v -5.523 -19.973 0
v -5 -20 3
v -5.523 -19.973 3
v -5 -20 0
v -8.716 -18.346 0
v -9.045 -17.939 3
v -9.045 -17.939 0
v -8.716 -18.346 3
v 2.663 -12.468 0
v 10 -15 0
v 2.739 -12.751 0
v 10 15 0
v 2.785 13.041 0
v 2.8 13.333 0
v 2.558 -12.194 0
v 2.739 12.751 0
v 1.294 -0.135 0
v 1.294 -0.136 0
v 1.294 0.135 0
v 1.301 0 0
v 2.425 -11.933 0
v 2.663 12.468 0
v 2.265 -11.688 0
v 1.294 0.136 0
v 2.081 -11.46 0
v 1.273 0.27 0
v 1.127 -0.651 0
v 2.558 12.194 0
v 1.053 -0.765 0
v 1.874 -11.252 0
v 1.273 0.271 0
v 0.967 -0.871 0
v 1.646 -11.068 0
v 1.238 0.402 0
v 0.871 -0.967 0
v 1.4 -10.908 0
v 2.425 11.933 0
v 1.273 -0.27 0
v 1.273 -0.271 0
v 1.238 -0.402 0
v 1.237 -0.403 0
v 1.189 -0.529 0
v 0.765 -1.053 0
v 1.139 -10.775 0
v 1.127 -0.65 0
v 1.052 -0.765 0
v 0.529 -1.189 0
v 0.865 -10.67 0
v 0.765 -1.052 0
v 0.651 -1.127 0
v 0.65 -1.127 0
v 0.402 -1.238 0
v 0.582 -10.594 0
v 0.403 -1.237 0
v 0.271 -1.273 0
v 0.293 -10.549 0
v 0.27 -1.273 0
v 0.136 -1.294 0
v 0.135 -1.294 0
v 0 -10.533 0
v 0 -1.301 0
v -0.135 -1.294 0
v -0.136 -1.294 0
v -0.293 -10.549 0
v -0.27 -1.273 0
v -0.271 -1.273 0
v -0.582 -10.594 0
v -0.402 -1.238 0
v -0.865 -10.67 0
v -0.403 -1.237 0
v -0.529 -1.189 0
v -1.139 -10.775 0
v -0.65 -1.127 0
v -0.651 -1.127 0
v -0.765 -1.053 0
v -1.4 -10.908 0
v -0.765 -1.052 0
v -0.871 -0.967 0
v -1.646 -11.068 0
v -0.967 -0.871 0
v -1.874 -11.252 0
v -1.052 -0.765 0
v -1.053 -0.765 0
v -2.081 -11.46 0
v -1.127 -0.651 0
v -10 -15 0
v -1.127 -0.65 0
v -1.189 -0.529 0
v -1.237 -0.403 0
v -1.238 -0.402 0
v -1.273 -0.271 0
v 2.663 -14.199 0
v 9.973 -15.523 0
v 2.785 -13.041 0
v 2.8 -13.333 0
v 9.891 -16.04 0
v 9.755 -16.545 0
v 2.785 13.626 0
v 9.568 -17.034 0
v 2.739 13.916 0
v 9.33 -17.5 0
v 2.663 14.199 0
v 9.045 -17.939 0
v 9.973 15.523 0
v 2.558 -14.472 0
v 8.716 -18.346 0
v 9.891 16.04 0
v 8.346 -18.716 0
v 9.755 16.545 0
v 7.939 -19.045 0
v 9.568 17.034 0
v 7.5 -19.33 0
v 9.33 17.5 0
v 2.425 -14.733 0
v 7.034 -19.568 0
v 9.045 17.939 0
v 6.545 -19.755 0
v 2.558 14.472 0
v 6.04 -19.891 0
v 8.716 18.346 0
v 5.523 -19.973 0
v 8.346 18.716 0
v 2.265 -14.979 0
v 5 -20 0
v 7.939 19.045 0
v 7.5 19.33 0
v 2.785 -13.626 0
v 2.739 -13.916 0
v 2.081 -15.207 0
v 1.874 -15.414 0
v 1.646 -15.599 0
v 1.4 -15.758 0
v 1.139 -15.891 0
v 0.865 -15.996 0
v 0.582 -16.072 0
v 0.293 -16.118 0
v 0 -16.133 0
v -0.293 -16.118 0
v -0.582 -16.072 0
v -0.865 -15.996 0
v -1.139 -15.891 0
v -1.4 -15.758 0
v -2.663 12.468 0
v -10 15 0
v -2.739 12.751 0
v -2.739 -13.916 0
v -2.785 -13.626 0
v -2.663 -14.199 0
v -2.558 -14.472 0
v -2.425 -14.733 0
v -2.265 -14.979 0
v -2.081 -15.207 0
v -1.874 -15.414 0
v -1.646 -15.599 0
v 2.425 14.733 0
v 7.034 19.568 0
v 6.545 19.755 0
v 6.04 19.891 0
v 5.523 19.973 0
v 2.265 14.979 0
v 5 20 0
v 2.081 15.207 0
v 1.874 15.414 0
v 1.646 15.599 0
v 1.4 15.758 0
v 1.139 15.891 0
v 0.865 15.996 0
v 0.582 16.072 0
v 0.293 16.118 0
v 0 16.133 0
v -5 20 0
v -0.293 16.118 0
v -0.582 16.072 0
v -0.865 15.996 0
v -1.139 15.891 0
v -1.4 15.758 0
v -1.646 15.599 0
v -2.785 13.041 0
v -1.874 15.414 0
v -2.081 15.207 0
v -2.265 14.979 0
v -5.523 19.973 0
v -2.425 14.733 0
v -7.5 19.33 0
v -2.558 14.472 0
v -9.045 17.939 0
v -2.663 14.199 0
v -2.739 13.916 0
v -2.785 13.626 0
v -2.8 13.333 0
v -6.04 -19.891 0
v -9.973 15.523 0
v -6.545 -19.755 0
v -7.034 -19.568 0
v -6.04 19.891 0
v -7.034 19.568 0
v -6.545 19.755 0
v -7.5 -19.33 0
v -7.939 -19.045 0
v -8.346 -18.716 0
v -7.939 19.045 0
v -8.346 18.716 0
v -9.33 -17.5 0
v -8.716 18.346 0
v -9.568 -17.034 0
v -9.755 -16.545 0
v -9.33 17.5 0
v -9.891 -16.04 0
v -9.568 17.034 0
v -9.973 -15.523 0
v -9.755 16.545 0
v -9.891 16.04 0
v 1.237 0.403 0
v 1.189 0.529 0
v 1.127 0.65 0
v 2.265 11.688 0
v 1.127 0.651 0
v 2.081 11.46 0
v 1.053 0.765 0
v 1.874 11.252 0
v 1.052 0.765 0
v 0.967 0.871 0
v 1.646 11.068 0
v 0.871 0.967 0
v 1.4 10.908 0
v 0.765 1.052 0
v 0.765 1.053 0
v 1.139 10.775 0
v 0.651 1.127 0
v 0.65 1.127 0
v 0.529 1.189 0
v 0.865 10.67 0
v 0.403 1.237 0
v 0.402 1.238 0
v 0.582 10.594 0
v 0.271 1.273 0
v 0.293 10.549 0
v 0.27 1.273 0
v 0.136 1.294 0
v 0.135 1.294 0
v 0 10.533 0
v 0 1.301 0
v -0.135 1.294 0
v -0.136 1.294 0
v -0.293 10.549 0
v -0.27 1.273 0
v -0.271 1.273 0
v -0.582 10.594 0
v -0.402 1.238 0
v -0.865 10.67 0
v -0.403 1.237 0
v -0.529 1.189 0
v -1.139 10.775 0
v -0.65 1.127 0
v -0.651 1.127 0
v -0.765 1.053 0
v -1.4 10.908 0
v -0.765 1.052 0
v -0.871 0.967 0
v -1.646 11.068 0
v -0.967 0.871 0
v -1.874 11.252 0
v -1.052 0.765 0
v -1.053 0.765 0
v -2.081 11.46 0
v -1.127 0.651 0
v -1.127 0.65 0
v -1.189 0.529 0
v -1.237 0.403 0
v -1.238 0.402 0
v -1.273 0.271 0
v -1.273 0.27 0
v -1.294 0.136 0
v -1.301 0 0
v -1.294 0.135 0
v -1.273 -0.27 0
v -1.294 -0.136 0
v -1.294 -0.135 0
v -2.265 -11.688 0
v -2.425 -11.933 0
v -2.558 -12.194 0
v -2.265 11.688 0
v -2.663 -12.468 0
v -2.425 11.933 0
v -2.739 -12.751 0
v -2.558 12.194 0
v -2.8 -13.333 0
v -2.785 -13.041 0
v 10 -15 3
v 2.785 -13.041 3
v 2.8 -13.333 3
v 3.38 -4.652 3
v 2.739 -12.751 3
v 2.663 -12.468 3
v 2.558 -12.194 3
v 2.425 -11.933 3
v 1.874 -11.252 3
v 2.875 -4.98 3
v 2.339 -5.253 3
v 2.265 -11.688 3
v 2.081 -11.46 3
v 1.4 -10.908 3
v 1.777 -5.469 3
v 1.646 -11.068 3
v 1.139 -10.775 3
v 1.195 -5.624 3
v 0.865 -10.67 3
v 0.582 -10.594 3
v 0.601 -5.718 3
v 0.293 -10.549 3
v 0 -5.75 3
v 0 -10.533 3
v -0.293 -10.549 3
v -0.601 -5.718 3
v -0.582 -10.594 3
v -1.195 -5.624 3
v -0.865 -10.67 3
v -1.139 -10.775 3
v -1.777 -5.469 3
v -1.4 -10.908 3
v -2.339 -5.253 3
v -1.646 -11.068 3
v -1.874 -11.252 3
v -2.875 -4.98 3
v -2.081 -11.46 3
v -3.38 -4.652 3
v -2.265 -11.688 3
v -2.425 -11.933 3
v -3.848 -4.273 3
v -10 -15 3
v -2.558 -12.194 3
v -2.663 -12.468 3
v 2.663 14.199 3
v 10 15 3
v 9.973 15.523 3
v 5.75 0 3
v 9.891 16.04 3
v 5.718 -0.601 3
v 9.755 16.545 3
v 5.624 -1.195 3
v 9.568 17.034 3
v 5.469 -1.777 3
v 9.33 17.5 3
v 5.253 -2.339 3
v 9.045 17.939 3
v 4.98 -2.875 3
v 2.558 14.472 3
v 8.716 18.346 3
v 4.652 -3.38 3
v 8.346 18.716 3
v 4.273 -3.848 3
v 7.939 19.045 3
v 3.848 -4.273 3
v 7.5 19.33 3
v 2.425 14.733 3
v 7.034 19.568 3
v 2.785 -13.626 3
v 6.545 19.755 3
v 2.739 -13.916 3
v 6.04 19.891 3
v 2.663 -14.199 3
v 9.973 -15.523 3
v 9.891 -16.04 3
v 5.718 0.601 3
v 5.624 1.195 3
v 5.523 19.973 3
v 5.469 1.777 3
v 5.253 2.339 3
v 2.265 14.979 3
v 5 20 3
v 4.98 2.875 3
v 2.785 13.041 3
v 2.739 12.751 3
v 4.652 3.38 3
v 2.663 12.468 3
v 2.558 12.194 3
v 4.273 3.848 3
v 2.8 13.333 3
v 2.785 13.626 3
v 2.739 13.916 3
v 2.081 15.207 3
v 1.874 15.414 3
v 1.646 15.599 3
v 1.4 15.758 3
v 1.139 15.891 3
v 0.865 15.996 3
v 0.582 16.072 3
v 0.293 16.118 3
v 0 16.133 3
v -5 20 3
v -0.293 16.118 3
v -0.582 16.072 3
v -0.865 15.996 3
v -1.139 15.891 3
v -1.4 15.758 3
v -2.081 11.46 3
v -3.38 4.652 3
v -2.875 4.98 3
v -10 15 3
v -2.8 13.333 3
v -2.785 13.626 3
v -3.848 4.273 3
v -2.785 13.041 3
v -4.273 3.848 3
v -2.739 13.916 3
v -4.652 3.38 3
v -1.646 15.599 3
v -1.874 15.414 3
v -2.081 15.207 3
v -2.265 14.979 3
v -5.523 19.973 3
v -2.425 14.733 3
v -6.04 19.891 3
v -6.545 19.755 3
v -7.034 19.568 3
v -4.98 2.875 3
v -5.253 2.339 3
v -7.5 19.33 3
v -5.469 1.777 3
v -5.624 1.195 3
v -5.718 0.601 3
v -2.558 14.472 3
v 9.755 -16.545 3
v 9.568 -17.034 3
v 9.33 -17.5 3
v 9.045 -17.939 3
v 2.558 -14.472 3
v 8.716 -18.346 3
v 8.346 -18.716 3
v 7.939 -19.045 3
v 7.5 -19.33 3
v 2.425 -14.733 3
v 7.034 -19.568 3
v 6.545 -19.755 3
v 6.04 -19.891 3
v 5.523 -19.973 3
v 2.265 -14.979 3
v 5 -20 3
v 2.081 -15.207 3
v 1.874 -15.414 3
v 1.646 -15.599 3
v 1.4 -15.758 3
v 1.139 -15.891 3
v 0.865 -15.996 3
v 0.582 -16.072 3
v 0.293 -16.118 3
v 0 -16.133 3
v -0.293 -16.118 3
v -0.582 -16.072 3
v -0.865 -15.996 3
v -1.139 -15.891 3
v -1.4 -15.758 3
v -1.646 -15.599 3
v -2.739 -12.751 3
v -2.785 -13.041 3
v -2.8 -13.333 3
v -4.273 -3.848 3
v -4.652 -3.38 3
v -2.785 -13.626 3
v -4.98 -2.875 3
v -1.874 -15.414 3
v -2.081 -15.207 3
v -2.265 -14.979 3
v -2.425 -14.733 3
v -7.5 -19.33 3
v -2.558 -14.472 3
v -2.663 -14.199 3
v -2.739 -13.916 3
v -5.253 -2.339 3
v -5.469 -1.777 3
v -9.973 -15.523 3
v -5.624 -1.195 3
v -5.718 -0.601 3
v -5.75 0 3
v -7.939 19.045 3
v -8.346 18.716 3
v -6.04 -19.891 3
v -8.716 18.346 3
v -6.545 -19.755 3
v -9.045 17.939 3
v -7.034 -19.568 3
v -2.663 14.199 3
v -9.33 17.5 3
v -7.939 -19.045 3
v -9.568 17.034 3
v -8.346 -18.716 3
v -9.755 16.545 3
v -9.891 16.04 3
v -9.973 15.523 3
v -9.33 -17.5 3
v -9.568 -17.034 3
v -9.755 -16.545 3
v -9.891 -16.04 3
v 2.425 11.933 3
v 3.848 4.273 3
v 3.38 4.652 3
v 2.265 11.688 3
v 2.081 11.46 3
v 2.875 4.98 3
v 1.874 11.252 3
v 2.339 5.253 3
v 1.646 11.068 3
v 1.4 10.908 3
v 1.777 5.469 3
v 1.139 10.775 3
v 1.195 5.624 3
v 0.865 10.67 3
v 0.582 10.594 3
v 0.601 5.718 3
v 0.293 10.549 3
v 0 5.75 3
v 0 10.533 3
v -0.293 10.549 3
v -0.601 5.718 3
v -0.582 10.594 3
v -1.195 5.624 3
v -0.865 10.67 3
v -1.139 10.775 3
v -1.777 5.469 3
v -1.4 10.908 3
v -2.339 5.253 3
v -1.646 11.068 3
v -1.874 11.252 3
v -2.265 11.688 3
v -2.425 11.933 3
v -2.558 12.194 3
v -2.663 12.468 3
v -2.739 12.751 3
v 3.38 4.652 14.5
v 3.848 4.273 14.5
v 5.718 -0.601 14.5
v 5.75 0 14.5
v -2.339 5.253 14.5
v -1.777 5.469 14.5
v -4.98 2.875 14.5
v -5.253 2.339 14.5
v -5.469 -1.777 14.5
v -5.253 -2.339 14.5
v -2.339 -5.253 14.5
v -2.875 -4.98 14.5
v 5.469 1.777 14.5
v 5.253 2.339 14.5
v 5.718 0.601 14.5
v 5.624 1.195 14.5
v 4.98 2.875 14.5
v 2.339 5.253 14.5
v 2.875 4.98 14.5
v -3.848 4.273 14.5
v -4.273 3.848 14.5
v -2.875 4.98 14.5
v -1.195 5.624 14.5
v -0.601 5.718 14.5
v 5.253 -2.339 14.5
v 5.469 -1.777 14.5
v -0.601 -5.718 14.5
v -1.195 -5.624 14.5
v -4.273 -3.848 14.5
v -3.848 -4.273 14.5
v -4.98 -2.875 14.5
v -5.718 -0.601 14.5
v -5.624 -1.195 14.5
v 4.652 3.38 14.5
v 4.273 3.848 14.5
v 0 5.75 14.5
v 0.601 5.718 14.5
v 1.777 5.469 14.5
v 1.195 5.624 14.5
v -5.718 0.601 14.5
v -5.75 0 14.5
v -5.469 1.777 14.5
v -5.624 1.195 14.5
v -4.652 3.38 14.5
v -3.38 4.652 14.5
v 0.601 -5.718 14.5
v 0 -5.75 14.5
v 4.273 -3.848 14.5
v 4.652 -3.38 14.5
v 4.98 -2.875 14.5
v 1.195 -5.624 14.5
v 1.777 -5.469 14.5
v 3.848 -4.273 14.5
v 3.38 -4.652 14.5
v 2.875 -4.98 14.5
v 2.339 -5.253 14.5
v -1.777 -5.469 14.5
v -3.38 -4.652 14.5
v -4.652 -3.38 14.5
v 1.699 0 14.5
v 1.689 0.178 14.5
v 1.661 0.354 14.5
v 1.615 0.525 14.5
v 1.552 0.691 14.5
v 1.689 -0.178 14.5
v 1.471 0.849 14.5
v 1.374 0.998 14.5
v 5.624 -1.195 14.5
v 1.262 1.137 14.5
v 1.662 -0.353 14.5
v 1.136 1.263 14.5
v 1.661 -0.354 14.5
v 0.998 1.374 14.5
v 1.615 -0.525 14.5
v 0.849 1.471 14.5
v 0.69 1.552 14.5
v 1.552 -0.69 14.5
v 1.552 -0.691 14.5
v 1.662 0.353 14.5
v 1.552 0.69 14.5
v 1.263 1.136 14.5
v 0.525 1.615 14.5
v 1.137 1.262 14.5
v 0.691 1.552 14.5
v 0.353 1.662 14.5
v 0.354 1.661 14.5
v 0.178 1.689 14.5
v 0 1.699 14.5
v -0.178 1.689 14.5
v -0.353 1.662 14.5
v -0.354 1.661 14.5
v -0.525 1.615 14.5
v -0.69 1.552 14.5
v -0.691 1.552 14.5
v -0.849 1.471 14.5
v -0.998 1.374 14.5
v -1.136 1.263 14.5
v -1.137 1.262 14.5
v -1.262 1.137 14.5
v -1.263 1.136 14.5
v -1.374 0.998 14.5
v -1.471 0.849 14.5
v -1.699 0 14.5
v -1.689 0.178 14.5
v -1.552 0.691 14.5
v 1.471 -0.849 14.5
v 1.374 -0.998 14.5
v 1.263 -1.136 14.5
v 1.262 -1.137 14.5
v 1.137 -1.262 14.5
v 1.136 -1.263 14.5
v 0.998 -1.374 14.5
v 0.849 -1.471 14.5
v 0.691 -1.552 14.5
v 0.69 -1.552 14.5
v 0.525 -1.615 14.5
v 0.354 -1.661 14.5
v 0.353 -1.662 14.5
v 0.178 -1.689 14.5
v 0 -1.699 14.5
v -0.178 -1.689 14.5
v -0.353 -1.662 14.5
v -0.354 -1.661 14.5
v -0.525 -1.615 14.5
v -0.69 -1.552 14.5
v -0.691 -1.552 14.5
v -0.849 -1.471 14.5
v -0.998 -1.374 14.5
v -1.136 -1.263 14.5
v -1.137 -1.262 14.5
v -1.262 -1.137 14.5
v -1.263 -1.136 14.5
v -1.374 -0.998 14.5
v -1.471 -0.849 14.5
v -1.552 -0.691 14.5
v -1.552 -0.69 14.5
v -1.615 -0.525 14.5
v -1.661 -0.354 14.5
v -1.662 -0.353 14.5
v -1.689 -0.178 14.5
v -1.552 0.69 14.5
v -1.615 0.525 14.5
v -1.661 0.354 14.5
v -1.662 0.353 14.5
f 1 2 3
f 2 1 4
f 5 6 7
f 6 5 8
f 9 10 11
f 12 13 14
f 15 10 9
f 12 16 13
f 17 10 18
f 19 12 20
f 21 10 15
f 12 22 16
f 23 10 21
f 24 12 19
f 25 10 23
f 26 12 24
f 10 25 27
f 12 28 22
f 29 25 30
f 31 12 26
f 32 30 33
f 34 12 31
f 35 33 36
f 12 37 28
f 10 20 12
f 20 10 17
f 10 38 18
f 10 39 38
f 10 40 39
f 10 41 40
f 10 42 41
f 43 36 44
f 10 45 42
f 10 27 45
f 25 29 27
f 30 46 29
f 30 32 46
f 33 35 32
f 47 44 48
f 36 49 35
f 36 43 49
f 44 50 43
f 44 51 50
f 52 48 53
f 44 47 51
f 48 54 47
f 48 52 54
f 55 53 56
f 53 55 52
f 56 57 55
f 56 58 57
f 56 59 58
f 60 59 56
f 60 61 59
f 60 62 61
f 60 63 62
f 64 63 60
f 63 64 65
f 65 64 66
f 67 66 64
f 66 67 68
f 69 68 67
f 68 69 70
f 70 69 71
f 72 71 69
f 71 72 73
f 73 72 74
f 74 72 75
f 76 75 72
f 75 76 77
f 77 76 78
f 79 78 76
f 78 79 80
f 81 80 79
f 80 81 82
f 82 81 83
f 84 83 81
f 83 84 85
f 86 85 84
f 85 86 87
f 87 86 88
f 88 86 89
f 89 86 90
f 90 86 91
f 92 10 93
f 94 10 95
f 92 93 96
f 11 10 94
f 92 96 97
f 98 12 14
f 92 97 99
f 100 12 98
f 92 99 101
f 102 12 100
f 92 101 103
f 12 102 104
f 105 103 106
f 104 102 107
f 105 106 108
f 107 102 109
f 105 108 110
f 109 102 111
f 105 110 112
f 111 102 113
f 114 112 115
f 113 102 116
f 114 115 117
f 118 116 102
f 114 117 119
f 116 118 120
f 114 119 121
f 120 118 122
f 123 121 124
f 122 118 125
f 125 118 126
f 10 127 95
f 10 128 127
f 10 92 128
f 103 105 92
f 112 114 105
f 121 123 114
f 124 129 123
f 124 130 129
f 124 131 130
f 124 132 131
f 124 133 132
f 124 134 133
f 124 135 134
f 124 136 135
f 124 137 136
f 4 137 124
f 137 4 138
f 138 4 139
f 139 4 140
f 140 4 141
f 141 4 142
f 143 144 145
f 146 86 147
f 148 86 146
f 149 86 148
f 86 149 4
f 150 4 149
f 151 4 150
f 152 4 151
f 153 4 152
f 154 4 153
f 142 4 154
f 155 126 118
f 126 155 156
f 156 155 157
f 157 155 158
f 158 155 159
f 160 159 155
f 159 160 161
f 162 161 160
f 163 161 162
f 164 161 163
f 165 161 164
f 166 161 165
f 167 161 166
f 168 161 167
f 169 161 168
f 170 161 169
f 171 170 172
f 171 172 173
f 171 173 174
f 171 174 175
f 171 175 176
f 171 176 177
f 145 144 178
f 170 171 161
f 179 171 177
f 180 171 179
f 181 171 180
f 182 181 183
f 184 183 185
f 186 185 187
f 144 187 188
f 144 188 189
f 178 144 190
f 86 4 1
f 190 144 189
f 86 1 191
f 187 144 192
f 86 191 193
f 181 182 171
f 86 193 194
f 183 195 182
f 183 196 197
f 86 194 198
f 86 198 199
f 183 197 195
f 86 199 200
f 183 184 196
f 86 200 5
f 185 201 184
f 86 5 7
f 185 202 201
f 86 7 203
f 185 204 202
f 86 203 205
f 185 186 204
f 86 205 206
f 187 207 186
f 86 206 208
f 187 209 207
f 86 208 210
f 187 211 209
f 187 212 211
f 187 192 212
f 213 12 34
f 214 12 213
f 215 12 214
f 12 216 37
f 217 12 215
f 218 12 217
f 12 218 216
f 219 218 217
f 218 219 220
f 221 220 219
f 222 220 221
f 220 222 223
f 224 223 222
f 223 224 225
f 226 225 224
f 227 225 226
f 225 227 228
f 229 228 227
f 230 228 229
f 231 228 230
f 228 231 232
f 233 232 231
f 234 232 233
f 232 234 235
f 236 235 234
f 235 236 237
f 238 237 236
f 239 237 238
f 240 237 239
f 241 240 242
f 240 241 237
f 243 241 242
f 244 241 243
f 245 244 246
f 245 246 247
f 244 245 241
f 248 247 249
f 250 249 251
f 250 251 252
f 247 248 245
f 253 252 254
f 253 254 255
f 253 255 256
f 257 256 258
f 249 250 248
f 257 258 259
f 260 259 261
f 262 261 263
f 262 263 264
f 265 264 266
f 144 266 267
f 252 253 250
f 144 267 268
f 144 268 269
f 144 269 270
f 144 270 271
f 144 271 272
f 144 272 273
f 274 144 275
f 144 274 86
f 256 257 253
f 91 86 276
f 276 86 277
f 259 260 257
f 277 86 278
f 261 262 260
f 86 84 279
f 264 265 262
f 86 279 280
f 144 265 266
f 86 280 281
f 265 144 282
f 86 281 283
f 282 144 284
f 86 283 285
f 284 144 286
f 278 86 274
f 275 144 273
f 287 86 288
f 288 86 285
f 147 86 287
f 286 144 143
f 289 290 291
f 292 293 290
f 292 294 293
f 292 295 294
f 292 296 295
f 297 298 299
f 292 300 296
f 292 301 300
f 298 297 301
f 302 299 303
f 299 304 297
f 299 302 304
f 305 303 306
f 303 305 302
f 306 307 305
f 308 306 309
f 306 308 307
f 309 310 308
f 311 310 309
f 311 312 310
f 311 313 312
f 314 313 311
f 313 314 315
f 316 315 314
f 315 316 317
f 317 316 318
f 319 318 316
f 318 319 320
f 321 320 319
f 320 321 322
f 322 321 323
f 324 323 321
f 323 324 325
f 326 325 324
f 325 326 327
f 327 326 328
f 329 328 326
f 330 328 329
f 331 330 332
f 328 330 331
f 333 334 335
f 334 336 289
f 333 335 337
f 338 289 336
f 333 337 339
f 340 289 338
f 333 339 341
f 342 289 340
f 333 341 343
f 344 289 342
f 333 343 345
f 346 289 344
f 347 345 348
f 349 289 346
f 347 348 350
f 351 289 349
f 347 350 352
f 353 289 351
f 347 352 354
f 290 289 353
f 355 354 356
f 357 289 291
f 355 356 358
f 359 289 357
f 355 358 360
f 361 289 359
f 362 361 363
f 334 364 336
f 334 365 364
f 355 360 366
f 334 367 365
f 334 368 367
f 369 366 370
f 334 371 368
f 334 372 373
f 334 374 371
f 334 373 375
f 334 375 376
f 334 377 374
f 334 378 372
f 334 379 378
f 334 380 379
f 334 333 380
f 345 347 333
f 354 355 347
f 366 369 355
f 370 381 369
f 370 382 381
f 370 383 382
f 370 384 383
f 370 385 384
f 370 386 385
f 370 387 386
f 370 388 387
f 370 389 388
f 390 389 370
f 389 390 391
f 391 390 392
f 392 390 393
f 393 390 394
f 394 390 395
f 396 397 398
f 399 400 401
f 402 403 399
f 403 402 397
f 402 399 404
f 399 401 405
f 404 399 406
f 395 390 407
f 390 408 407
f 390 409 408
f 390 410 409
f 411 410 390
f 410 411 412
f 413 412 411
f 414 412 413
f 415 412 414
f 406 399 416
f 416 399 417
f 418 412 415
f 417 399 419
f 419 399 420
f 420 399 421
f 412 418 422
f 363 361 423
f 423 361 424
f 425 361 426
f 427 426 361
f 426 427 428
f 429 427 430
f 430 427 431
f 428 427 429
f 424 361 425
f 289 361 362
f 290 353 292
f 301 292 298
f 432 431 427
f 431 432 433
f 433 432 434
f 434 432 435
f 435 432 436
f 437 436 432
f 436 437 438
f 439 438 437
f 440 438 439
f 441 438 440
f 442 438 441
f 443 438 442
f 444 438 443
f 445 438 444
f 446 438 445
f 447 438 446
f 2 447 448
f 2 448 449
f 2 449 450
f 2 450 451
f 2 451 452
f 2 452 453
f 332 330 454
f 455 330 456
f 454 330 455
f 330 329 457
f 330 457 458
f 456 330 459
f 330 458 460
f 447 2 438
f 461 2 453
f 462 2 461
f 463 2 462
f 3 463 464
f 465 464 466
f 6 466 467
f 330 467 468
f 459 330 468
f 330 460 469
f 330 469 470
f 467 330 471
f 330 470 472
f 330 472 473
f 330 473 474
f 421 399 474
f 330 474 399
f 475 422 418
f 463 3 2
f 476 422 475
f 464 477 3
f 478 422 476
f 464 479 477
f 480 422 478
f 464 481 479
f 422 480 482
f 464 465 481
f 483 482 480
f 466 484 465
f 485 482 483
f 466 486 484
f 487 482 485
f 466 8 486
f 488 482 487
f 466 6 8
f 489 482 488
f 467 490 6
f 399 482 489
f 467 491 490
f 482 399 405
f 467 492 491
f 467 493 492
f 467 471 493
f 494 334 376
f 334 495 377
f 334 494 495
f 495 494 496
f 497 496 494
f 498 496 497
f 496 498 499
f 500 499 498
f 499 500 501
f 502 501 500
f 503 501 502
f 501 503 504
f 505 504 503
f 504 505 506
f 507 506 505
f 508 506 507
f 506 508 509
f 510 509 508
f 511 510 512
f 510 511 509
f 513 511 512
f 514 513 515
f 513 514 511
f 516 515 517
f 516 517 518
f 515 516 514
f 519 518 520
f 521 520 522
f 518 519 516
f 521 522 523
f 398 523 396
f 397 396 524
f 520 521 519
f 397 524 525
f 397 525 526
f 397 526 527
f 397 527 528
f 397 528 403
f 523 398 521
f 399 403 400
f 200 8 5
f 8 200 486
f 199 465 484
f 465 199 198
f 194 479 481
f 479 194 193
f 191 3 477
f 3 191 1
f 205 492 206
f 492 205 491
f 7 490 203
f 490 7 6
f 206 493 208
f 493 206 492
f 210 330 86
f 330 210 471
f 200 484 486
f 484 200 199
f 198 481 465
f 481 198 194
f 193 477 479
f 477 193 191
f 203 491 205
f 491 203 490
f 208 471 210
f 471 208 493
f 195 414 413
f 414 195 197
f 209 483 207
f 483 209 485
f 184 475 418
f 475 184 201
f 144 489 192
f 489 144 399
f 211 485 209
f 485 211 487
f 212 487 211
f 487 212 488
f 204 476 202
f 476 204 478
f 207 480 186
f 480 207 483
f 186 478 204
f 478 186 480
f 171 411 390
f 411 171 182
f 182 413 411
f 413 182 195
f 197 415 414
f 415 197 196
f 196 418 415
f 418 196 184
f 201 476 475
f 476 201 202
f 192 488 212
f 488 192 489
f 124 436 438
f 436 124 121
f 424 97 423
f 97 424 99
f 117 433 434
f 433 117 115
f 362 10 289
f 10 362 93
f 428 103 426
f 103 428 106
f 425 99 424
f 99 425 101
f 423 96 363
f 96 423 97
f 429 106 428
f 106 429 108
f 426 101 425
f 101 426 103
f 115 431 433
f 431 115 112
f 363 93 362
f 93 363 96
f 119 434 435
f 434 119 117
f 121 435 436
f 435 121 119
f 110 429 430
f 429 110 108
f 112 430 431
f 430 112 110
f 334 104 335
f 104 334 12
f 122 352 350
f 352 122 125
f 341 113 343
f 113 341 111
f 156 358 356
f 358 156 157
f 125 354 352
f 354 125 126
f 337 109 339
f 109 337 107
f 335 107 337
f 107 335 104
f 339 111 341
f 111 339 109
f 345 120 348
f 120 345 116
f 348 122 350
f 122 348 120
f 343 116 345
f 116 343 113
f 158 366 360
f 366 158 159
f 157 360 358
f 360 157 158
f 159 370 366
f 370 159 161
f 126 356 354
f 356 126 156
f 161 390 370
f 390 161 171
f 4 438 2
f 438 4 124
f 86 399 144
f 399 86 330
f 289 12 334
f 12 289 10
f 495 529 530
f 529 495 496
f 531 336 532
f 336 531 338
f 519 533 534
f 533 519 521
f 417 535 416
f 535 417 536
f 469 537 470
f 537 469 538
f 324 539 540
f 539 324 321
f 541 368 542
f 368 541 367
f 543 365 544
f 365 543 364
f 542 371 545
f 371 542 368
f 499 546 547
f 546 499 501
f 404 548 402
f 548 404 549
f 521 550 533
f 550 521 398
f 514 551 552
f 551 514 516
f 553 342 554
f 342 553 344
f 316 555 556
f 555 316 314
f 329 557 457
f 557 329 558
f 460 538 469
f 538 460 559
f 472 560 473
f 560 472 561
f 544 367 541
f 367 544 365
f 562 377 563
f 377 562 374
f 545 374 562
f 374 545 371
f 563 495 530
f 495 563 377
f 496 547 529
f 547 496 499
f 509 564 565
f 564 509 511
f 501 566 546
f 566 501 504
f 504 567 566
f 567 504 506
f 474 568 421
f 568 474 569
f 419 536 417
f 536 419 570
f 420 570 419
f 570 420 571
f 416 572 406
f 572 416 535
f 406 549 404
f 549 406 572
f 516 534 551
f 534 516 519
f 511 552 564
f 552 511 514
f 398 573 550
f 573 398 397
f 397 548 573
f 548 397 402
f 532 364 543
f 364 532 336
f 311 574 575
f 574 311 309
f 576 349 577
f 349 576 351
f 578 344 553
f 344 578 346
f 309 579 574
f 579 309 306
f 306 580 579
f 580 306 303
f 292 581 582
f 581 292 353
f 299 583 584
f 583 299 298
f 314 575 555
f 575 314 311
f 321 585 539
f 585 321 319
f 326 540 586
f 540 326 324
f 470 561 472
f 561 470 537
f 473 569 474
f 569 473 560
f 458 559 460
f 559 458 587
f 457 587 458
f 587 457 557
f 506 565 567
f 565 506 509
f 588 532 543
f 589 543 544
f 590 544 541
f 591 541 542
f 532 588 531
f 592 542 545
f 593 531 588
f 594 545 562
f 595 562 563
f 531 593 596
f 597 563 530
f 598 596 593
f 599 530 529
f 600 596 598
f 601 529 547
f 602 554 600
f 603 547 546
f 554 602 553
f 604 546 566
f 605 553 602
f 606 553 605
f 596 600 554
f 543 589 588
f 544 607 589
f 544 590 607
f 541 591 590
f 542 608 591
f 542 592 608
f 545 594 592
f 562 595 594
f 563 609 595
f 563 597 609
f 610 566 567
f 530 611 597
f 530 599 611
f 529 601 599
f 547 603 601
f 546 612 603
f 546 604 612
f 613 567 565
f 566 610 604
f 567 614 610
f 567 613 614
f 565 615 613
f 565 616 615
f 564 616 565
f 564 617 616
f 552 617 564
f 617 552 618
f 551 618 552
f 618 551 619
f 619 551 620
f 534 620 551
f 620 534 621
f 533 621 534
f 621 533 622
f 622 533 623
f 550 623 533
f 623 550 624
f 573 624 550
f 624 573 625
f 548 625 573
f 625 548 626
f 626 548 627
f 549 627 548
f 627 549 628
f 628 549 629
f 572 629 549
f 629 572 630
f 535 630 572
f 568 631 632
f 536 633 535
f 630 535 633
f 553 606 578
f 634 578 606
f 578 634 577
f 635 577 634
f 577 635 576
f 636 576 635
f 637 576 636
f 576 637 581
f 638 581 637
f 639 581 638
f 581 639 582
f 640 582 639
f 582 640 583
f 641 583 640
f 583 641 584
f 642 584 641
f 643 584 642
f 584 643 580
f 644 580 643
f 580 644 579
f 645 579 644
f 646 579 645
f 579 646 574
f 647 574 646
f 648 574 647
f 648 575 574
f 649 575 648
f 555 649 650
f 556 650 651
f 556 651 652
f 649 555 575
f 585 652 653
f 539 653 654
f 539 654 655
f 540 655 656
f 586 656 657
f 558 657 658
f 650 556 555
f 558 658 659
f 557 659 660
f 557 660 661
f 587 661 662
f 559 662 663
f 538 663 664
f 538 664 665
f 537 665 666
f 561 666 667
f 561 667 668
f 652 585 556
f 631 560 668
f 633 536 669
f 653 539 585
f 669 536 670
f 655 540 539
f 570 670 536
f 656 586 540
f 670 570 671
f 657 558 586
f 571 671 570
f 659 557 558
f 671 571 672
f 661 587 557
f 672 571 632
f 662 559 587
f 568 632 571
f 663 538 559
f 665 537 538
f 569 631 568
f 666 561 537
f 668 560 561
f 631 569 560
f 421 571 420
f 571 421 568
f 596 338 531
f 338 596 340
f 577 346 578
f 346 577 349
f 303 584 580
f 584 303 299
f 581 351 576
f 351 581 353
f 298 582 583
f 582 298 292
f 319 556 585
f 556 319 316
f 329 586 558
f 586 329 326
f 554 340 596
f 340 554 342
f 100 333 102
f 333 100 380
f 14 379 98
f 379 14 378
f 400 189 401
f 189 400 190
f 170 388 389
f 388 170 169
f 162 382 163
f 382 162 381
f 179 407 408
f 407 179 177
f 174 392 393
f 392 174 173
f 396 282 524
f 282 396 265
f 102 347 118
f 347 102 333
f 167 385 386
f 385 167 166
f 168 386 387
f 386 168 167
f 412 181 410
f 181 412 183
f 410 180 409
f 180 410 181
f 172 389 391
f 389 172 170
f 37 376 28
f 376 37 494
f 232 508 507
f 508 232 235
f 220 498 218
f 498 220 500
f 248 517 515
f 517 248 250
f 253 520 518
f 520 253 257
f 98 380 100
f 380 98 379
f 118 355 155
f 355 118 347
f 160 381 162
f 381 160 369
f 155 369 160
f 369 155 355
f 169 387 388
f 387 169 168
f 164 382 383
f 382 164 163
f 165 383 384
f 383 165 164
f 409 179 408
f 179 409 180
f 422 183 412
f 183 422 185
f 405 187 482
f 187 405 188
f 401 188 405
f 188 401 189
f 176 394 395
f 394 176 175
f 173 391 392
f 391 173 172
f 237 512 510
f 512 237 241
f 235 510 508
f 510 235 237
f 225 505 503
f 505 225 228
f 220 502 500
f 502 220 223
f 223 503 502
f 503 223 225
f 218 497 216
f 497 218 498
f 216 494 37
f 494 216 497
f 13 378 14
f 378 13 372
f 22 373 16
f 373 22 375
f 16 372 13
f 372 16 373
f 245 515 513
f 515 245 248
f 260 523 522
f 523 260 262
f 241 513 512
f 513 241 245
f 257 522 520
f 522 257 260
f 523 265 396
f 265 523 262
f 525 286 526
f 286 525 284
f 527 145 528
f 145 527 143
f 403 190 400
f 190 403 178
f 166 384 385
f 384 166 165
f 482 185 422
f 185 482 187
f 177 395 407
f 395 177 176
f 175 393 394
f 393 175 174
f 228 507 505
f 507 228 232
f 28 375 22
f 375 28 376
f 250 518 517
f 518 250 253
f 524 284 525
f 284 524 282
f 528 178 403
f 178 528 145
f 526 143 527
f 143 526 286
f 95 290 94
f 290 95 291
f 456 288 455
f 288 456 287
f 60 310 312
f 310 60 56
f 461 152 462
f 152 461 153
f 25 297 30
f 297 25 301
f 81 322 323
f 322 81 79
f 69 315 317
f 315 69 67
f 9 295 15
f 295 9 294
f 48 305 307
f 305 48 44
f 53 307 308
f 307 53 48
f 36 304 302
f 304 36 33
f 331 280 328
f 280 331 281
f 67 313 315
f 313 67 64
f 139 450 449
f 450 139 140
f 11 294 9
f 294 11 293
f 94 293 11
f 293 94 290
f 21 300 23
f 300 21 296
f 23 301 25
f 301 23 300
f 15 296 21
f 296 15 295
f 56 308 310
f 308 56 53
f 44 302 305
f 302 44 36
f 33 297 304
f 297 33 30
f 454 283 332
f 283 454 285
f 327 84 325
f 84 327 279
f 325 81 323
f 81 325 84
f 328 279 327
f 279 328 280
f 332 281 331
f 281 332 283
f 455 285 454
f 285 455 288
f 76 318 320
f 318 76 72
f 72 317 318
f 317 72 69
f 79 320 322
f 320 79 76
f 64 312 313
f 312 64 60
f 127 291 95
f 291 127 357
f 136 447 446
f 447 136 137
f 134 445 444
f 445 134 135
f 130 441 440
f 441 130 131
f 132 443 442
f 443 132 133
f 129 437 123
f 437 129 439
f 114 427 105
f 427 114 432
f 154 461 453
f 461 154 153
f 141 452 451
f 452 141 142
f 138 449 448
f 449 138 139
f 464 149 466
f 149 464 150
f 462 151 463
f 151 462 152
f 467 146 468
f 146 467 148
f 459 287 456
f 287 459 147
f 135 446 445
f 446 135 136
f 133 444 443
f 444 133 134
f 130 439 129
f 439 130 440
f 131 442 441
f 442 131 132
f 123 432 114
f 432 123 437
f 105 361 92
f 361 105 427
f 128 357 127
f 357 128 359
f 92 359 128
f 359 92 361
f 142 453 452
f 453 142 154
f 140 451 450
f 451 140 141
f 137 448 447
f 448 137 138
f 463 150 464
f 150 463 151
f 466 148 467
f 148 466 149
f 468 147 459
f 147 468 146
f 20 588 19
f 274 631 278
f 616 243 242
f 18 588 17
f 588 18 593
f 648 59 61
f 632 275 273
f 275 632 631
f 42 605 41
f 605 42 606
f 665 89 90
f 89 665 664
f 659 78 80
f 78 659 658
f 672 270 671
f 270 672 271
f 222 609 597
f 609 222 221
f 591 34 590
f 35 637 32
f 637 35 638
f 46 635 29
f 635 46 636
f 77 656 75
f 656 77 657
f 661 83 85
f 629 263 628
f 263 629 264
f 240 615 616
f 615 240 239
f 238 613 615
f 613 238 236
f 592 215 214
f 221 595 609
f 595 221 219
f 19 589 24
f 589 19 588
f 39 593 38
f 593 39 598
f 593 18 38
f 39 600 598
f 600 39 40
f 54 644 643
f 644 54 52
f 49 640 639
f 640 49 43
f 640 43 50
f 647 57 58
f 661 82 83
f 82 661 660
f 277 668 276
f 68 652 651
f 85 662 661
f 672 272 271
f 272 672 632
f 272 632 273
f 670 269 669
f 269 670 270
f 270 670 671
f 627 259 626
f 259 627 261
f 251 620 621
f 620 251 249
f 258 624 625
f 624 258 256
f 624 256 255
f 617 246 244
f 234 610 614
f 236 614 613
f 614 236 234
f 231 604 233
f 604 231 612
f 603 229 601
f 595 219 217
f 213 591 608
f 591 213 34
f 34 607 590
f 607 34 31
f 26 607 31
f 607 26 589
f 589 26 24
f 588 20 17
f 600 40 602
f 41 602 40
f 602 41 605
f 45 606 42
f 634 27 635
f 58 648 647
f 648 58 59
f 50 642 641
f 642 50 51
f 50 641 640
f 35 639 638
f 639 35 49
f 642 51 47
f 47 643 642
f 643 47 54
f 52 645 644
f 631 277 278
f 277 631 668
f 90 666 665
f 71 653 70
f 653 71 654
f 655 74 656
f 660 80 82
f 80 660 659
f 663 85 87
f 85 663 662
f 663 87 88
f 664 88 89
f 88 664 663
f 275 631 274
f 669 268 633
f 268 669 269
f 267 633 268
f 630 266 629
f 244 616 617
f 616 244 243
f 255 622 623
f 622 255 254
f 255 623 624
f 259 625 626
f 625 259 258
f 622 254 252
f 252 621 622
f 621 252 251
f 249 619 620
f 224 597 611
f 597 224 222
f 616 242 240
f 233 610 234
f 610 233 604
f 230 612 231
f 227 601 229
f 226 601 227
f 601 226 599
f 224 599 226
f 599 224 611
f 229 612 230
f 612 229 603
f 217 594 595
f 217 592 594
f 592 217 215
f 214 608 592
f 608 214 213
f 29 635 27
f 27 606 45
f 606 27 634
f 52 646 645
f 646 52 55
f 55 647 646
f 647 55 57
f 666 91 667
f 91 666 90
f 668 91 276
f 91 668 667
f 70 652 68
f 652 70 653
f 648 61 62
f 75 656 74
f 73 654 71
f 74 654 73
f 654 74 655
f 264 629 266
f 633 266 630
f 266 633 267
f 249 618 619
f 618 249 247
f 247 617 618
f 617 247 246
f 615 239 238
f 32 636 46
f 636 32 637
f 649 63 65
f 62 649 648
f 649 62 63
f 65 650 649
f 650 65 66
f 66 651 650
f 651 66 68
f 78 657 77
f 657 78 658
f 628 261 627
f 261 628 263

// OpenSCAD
// file: roundedBox.scad
// size is a vector [x, y, z], always draws from center!
module roundedBox(size, radius=5, sidesonly=true)
{
	rot = [ [0,0,0], [90,0,90], [90,90,0] ];
   	if (sidesonly)
	{
   		cube(size - [2*radius,0,0], true);
      	cube(size - [0,2*radius,0], true);
      	for (x = [radius-size[0]/2, -radius+size[0]/2],
      	     y = [radius-size[1]/2, -radius+size[1]/2])
		{
      		translate([x,y,0])
				cylinder(r=radius, h=size[2], center=true);
        }
    }
	else
	{
   		cube([size[0], size[1]-radius*2, size[2]-radius*2], 
			 center=true);
		cube([size[0]-radius*2, size[1], size[2]-radius*2],
			 center=true);
        cube([size[0]-radius*2, size[1]-radius*2, size[2]],
			 center=true);

        for (axis = [0:2])
		{
      		for (x = [radius-size[axis]/2, -radius+size[axis]/2],
                 y = [ radius-size[(axis+1)%3]/2, 
					  -radius+size[(axis+1)%3]/2])
			{
         		rotate(rot[axis]) 
				translate([x,y,0]) 
                cylinder(h=size[(axis+2)%3]-2*radius, 
					     r=radius, center=true);
			}
		}
   		for (x = [radius-size[0]/2, -radius+size[0]/2],
           y = [radius-size[1]/2, -radius+size[1]/2],
           z = [radius-size[2]/2, -radius+size[2]/2])
		{
      		translate([x,y,z])
      		sphere(radius);
        }
	}
}
// file: configuration.scad
// Configuration file for the Kumu-3D printer.
//
// DO NOT SLICE THIS.
//
// This work is licensed under a Creative Commons Attribution-ShareAlike 4.0
// International License.
// Visit:  http://creativecommons.org/licenses/by-sa/4.0/
//
// Haydn Huntley
// haydn.huntley@gmail.com

// All measurements in mm.
smidge            = 0.1;
mmPerInch         = 25.4;
m3Radius          = (3.0 + 0.2) / 2;
m3LooseRadius     = m3Radius + 0.2;
m3TightRadius     = m3Radius - 0.2;
m3HeadHeight      = 3.0 + 0.2;
m3HeadRadius      = (5.4 + 0.2) / 2;
m3LooseHeadRadius = m3HeadRadius + 0.2;
m3NutRadius       = (6.25 + 0.75) / 2;
m3LooseNutRadius  = (m3NutRadius + 0.1);
m3TightNutRadius  = (m3NutRadius - 0.1);
m3NutHeight		  = 2.4;
m3NylockNutHeight = 4.0;
m3LooseNutHeight  = 2.4+0.2;
nozzleWidth		  = 0.5;
extrusionWidth    = 20.0;
copperPipeRadius  = 16.0/2 - smidge;
m5Radius          = (5.0 + 0.2) / 2;
m5LooseRadius     = m5Radius + 0.2;
m5TightRadius     = m5Radius - 0.2;
m5HeadHeight      = 5.6;		// For M5 SHCS
m5LooseHeadRadius = 8.6 / 2;	// For M5 SHCS
m5ButtonHeadRadius     = (9.5 + 0.3) / 2;  // For M5 button head
m5ButtonHeadHeight     = 2.5 + 0.5;
m5LowProfileHeadRadius = (9.5 + 0.3) / 2;  // For M5 low profile
m5LowProfileHeadHeight = 1.5 + 0.5;
m5x8Height        = 8;        // For M5x8
m5LooseNutRadius  = (8.9 + 0.4) / 2;
m5PlainNutHeight  = (3.8 + 0.2);
m5LockNutHeight   = (4.9 + 0.3);
m4LooseNutRadius  = (8.0 + 0.3) / 2;
m4NutHeight       = (3.2 + 0.3);

lowerFrameHeight    = 3 * extrusionWidth + 12;
ballJointSeparation = 48.0;
// main file
// Posts for 1/2" angle aluminum for stiffening a printer which uses 2020
// extrusions..  I recommend using A-bracing.
// 
// Haydn Huntley
// haydn.huntley@gmail.com


$fn = 360/6;


include <configuration.scad>;
include <roundedBox.scad>;


// All measurements in mm.
debug		= false;
xBase       = extrusionWidth;
yBase       = 2 * extrusionWidth;
zBase		= 3.0;
postRadius  = 11.5/2;


module diagonalBracingPost()
{
	difference()
	{
		union()
		{
			// The post.
			cylinder(r=postRadius, h=2*postRadius+zBase);

			// The base for the post.
			translate([0, 0, zBase/2])
			roundedBox([xBase, yBase, zBase], 5, true);
		}
		
		// Remove a tapering hole for an M3x10 to M3x16 screw in the post.
		translate([0, 0, -smidge/2])
		cylinder(r2=m3LooseRadius-smidge,
				 r1=m3Radius-3*smidge,
				 h=2*postRadius+zBase+smidge);

		// Remove the two M5x8 holes in the base.
		for (y = [1, -1])
		{
			translate([0, y*2/3*yBase/2, -smidge/2])
			{
				cylinder(r=m5LooseRadius, h=zBase+smidge);
				// Show the M5x8 screw heads.
				if (debug)
					%translate([0, 0, zBase+smidge/2])
					cylinder(r=m5ButtonHeadRadius, h=m5ButtonHeadHeight);
			}
		}
	}
}


diagonalBracingPost();
